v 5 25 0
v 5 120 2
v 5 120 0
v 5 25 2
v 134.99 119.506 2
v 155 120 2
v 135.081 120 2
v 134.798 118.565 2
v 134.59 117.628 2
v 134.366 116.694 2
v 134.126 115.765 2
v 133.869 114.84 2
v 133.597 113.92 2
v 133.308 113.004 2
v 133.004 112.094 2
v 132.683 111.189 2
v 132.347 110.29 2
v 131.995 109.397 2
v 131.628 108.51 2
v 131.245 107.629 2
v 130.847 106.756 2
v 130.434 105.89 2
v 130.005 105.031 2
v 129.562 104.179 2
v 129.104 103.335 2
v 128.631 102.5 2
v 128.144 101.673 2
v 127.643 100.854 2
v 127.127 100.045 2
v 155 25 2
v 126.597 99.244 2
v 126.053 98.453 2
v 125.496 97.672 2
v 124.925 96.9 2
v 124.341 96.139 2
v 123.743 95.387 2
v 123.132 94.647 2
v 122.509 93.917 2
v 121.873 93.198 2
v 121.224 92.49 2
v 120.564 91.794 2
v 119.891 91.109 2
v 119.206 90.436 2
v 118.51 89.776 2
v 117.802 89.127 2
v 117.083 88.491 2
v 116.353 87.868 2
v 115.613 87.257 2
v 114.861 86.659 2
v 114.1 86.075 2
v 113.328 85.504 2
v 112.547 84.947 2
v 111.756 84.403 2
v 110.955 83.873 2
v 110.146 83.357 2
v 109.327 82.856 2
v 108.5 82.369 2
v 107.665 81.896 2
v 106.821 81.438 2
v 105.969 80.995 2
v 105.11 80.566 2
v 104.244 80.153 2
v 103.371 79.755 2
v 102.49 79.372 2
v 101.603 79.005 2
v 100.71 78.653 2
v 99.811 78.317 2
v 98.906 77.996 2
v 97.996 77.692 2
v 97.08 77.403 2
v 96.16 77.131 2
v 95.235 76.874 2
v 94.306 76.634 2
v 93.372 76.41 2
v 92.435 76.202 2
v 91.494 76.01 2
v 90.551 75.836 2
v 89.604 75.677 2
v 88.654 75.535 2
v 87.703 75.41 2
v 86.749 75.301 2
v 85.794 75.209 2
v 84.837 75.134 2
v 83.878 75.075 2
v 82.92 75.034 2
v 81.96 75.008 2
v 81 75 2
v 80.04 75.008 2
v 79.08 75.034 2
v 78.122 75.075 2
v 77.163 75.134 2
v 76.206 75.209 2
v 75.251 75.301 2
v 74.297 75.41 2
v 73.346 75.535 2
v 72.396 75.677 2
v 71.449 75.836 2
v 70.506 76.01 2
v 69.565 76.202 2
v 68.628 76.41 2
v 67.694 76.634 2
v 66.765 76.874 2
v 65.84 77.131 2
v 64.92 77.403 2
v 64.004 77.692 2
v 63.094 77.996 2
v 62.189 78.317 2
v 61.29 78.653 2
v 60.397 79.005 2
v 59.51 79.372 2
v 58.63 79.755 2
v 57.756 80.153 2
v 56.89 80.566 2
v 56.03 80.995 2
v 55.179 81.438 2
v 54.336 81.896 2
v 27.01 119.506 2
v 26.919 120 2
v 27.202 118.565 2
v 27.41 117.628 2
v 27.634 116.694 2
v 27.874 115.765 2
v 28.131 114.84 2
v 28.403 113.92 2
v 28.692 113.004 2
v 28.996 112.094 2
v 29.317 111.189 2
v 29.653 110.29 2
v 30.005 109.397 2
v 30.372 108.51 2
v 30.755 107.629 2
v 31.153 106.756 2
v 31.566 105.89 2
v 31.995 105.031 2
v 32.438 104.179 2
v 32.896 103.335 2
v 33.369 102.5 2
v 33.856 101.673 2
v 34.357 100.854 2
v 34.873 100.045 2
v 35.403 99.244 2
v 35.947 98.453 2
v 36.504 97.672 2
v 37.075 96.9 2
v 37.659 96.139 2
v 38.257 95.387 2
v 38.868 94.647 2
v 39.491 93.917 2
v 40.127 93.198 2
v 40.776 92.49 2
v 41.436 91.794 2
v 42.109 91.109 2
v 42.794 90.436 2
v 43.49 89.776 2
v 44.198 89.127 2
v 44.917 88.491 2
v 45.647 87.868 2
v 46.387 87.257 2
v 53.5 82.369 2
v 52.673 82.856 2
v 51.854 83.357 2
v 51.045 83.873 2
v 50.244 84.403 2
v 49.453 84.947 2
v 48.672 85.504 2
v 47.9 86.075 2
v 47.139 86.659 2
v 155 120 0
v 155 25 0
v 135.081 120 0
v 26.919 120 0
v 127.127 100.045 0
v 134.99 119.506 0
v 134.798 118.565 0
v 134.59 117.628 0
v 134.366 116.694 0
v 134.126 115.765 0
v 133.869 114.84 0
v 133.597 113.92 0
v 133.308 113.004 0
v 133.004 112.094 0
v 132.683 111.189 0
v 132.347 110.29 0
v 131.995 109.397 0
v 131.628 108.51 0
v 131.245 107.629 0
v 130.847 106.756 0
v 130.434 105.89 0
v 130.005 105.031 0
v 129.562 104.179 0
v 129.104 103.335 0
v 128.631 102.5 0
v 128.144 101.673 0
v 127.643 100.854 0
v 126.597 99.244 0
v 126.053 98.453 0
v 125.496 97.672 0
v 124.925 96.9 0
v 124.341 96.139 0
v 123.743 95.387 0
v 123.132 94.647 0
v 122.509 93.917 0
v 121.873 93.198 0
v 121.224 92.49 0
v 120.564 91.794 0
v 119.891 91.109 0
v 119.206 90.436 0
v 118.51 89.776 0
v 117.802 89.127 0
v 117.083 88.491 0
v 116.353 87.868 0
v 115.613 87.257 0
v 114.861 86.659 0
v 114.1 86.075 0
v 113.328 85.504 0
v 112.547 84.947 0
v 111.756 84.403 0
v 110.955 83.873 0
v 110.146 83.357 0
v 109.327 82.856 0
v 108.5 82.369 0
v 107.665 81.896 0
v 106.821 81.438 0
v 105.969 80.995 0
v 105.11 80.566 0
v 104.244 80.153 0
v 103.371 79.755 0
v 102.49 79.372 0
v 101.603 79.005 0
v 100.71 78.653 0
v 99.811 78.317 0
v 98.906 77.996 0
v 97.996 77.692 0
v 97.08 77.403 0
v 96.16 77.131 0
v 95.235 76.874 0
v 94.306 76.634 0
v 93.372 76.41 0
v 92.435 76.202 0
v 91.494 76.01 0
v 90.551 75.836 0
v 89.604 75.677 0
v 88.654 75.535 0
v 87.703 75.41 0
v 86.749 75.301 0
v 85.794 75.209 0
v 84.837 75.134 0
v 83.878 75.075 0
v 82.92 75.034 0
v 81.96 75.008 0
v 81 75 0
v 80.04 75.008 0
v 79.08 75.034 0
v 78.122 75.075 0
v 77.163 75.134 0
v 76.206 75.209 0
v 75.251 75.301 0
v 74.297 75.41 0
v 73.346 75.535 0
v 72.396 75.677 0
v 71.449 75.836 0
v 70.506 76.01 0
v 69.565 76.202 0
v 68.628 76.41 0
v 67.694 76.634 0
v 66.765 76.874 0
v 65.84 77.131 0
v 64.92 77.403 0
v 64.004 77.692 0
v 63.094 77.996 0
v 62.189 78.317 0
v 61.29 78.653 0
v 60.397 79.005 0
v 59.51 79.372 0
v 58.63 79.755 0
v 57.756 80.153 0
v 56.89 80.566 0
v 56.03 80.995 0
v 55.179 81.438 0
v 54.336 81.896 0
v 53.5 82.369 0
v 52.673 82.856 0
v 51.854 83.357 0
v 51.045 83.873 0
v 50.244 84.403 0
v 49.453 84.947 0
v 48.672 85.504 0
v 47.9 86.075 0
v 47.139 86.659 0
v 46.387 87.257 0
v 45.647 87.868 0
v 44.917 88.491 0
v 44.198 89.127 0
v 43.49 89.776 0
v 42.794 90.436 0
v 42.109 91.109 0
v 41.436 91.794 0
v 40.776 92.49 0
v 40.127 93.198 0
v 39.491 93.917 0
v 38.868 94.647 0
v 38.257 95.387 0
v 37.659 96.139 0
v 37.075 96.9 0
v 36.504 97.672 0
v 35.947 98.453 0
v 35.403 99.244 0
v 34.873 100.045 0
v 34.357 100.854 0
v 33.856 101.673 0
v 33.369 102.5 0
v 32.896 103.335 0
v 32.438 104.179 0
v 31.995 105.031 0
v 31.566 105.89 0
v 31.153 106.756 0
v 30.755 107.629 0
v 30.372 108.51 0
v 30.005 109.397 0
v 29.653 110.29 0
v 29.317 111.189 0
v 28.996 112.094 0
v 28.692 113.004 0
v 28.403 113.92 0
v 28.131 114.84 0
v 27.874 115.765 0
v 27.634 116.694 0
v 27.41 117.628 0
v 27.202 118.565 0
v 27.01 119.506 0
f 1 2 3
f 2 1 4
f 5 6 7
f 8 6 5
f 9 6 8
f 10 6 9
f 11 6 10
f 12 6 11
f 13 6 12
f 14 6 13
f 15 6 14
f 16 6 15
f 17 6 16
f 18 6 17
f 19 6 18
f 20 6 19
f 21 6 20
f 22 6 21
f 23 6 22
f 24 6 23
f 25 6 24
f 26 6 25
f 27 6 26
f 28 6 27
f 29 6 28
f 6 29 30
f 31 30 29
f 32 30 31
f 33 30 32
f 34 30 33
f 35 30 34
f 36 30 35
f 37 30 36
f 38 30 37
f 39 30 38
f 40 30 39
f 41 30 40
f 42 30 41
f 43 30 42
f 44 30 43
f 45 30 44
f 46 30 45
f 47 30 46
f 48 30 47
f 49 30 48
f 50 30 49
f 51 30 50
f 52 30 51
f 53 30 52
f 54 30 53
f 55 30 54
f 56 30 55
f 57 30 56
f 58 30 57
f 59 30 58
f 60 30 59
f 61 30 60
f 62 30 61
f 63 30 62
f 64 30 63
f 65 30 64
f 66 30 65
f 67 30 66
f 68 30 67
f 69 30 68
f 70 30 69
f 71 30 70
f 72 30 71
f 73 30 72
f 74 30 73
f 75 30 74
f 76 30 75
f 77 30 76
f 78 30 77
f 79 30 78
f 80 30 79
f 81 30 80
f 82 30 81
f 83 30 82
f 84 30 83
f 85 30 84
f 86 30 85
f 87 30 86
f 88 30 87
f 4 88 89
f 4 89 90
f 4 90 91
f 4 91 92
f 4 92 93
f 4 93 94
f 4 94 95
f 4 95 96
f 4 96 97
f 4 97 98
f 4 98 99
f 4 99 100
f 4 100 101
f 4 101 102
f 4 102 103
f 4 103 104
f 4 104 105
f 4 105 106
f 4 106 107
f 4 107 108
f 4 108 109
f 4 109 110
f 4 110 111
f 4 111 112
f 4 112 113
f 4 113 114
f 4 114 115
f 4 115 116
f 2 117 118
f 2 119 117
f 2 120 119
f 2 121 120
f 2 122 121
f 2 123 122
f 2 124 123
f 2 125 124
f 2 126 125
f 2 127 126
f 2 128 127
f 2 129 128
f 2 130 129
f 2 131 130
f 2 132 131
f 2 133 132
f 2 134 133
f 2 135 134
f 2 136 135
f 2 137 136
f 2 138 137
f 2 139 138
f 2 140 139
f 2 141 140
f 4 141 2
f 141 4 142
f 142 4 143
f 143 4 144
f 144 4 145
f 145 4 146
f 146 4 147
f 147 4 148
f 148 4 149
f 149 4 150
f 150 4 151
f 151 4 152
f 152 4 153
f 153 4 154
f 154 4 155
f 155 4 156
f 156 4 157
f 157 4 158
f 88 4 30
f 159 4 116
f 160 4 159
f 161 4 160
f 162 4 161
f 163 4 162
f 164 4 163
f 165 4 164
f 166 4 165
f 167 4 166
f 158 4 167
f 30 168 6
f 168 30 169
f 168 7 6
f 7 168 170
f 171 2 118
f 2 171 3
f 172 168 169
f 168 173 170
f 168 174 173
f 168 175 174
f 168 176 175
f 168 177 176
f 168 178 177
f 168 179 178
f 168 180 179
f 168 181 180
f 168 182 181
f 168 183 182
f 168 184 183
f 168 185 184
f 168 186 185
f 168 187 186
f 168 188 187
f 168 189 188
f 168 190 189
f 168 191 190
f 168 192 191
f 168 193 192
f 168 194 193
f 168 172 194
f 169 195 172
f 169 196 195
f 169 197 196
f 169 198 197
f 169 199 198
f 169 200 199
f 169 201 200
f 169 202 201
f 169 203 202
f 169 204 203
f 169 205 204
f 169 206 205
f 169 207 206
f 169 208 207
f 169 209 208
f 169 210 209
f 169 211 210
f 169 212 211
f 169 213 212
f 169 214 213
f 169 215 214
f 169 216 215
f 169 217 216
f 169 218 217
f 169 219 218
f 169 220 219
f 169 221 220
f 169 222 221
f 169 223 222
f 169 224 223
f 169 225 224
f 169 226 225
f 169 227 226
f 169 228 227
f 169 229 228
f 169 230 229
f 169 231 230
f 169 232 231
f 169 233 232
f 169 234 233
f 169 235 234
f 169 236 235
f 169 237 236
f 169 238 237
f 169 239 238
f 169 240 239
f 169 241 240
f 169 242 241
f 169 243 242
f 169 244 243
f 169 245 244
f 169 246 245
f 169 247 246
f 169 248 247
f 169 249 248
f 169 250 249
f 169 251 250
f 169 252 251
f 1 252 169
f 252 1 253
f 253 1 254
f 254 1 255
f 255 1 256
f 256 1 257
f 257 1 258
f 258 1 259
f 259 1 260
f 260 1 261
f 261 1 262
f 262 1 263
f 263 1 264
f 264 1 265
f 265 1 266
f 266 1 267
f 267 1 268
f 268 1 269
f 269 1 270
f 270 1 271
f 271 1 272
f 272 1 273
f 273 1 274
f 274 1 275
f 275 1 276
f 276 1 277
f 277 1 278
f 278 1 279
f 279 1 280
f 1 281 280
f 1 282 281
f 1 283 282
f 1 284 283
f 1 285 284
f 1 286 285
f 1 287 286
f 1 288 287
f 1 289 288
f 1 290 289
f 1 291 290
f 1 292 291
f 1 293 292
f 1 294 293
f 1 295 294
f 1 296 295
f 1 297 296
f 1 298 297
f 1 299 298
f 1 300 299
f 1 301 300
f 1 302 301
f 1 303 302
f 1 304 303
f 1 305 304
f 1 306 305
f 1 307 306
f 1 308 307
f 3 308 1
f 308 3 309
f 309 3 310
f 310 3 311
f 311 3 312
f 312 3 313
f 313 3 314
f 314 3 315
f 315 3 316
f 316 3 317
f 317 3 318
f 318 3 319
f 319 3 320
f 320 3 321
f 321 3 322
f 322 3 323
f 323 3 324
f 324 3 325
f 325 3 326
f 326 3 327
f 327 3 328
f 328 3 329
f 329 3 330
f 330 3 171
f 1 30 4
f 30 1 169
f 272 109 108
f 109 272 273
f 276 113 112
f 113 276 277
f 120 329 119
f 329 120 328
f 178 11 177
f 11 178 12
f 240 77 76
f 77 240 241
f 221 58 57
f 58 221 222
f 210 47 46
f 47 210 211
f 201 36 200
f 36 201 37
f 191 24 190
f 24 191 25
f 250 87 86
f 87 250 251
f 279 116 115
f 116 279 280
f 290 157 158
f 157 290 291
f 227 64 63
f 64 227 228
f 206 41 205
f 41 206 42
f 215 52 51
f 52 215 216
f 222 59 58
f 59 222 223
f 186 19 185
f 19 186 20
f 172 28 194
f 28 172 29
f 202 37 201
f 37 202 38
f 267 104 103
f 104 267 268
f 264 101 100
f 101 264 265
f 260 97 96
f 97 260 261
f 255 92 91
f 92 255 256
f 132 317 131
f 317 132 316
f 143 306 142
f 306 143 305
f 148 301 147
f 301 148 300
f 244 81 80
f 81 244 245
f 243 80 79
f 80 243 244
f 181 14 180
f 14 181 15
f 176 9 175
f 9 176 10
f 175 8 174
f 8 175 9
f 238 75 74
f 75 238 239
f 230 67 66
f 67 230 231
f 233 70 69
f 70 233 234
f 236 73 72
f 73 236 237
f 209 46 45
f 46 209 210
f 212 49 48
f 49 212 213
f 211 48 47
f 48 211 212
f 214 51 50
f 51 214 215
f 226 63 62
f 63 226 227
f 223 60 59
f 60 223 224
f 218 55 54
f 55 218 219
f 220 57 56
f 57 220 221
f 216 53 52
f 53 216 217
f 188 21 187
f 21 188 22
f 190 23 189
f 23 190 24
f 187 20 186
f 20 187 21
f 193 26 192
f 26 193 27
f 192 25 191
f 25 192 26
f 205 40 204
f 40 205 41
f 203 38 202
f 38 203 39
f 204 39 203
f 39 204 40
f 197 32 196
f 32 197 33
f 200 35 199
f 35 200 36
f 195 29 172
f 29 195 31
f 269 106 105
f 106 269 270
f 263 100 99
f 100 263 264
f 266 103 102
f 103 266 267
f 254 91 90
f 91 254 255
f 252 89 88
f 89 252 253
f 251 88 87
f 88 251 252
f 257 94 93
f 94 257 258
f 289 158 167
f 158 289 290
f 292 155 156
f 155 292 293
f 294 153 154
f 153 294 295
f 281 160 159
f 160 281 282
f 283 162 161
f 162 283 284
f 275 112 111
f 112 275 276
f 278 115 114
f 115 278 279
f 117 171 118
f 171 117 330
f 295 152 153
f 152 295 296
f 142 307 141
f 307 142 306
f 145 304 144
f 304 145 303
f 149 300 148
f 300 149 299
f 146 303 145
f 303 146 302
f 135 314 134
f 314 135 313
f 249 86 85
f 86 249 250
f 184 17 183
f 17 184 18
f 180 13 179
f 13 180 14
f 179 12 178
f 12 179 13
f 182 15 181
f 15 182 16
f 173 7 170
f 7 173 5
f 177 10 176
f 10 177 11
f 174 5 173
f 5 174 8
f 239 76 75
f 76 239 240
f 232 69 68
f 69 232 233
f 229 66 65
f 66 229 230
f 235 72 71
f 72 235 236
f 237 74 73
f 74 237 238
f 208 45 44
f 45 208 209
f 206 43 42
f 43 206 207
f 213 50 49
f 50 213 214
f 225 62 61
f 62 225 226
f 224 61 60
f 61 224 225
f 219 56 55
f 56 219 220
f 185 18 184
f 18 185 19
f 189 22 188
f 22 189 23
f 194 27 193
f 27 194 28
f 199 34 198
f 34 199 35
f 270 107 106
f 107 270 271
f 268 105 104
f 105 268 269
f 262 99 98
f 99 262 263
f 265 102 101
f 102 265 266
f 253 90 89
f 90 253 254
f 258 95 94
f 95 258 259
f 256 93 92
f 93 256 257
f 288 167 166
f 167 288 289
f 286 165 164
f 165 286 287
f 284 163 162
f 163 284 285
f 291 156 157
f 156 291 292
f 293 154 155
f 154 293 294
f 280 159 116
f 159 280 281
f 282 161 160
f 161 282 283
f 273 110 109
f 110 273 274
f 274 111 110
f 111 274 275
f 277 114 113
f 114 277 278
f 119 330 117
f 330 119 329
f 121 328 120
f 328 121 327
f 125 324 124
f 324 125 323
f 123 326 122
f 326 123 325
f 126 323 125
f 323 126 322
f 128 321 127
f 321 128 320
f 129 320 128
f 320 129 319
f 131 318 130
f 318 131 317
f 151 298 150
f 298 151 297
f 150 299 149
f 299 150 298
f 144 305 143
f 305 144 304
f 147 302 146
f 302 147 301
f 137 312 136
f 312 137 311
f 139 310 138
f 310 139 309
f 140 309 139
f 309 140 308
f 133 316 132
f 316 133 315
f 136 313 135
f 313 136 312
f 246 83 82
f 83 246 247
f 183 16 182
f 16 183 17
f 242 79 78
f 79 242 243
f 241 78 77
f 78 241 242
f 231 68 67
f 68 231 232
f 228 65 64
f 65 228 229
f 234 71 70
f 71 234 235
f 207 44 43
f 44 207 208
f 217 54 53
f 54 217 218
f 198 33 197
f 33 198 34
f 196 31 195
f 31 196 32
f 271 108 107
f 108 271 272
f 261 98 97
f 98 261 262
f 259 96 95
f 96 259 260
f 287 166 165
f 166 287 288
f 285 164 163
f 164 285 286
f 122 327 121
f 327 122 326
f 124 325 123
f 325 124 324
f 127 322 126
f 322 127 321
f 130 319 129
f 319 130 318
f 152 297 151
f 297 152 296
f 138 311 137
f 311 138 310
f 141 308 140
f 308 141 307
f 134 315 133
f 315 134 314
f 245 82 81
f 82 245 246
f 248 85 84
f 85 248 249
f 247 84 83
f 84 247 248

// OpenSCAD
difference() {
translate([5,25,0])cube([150, 95, 2]);
    translate([81,130,0])cylinder(d=110, h= 40, $fn=360);
}
